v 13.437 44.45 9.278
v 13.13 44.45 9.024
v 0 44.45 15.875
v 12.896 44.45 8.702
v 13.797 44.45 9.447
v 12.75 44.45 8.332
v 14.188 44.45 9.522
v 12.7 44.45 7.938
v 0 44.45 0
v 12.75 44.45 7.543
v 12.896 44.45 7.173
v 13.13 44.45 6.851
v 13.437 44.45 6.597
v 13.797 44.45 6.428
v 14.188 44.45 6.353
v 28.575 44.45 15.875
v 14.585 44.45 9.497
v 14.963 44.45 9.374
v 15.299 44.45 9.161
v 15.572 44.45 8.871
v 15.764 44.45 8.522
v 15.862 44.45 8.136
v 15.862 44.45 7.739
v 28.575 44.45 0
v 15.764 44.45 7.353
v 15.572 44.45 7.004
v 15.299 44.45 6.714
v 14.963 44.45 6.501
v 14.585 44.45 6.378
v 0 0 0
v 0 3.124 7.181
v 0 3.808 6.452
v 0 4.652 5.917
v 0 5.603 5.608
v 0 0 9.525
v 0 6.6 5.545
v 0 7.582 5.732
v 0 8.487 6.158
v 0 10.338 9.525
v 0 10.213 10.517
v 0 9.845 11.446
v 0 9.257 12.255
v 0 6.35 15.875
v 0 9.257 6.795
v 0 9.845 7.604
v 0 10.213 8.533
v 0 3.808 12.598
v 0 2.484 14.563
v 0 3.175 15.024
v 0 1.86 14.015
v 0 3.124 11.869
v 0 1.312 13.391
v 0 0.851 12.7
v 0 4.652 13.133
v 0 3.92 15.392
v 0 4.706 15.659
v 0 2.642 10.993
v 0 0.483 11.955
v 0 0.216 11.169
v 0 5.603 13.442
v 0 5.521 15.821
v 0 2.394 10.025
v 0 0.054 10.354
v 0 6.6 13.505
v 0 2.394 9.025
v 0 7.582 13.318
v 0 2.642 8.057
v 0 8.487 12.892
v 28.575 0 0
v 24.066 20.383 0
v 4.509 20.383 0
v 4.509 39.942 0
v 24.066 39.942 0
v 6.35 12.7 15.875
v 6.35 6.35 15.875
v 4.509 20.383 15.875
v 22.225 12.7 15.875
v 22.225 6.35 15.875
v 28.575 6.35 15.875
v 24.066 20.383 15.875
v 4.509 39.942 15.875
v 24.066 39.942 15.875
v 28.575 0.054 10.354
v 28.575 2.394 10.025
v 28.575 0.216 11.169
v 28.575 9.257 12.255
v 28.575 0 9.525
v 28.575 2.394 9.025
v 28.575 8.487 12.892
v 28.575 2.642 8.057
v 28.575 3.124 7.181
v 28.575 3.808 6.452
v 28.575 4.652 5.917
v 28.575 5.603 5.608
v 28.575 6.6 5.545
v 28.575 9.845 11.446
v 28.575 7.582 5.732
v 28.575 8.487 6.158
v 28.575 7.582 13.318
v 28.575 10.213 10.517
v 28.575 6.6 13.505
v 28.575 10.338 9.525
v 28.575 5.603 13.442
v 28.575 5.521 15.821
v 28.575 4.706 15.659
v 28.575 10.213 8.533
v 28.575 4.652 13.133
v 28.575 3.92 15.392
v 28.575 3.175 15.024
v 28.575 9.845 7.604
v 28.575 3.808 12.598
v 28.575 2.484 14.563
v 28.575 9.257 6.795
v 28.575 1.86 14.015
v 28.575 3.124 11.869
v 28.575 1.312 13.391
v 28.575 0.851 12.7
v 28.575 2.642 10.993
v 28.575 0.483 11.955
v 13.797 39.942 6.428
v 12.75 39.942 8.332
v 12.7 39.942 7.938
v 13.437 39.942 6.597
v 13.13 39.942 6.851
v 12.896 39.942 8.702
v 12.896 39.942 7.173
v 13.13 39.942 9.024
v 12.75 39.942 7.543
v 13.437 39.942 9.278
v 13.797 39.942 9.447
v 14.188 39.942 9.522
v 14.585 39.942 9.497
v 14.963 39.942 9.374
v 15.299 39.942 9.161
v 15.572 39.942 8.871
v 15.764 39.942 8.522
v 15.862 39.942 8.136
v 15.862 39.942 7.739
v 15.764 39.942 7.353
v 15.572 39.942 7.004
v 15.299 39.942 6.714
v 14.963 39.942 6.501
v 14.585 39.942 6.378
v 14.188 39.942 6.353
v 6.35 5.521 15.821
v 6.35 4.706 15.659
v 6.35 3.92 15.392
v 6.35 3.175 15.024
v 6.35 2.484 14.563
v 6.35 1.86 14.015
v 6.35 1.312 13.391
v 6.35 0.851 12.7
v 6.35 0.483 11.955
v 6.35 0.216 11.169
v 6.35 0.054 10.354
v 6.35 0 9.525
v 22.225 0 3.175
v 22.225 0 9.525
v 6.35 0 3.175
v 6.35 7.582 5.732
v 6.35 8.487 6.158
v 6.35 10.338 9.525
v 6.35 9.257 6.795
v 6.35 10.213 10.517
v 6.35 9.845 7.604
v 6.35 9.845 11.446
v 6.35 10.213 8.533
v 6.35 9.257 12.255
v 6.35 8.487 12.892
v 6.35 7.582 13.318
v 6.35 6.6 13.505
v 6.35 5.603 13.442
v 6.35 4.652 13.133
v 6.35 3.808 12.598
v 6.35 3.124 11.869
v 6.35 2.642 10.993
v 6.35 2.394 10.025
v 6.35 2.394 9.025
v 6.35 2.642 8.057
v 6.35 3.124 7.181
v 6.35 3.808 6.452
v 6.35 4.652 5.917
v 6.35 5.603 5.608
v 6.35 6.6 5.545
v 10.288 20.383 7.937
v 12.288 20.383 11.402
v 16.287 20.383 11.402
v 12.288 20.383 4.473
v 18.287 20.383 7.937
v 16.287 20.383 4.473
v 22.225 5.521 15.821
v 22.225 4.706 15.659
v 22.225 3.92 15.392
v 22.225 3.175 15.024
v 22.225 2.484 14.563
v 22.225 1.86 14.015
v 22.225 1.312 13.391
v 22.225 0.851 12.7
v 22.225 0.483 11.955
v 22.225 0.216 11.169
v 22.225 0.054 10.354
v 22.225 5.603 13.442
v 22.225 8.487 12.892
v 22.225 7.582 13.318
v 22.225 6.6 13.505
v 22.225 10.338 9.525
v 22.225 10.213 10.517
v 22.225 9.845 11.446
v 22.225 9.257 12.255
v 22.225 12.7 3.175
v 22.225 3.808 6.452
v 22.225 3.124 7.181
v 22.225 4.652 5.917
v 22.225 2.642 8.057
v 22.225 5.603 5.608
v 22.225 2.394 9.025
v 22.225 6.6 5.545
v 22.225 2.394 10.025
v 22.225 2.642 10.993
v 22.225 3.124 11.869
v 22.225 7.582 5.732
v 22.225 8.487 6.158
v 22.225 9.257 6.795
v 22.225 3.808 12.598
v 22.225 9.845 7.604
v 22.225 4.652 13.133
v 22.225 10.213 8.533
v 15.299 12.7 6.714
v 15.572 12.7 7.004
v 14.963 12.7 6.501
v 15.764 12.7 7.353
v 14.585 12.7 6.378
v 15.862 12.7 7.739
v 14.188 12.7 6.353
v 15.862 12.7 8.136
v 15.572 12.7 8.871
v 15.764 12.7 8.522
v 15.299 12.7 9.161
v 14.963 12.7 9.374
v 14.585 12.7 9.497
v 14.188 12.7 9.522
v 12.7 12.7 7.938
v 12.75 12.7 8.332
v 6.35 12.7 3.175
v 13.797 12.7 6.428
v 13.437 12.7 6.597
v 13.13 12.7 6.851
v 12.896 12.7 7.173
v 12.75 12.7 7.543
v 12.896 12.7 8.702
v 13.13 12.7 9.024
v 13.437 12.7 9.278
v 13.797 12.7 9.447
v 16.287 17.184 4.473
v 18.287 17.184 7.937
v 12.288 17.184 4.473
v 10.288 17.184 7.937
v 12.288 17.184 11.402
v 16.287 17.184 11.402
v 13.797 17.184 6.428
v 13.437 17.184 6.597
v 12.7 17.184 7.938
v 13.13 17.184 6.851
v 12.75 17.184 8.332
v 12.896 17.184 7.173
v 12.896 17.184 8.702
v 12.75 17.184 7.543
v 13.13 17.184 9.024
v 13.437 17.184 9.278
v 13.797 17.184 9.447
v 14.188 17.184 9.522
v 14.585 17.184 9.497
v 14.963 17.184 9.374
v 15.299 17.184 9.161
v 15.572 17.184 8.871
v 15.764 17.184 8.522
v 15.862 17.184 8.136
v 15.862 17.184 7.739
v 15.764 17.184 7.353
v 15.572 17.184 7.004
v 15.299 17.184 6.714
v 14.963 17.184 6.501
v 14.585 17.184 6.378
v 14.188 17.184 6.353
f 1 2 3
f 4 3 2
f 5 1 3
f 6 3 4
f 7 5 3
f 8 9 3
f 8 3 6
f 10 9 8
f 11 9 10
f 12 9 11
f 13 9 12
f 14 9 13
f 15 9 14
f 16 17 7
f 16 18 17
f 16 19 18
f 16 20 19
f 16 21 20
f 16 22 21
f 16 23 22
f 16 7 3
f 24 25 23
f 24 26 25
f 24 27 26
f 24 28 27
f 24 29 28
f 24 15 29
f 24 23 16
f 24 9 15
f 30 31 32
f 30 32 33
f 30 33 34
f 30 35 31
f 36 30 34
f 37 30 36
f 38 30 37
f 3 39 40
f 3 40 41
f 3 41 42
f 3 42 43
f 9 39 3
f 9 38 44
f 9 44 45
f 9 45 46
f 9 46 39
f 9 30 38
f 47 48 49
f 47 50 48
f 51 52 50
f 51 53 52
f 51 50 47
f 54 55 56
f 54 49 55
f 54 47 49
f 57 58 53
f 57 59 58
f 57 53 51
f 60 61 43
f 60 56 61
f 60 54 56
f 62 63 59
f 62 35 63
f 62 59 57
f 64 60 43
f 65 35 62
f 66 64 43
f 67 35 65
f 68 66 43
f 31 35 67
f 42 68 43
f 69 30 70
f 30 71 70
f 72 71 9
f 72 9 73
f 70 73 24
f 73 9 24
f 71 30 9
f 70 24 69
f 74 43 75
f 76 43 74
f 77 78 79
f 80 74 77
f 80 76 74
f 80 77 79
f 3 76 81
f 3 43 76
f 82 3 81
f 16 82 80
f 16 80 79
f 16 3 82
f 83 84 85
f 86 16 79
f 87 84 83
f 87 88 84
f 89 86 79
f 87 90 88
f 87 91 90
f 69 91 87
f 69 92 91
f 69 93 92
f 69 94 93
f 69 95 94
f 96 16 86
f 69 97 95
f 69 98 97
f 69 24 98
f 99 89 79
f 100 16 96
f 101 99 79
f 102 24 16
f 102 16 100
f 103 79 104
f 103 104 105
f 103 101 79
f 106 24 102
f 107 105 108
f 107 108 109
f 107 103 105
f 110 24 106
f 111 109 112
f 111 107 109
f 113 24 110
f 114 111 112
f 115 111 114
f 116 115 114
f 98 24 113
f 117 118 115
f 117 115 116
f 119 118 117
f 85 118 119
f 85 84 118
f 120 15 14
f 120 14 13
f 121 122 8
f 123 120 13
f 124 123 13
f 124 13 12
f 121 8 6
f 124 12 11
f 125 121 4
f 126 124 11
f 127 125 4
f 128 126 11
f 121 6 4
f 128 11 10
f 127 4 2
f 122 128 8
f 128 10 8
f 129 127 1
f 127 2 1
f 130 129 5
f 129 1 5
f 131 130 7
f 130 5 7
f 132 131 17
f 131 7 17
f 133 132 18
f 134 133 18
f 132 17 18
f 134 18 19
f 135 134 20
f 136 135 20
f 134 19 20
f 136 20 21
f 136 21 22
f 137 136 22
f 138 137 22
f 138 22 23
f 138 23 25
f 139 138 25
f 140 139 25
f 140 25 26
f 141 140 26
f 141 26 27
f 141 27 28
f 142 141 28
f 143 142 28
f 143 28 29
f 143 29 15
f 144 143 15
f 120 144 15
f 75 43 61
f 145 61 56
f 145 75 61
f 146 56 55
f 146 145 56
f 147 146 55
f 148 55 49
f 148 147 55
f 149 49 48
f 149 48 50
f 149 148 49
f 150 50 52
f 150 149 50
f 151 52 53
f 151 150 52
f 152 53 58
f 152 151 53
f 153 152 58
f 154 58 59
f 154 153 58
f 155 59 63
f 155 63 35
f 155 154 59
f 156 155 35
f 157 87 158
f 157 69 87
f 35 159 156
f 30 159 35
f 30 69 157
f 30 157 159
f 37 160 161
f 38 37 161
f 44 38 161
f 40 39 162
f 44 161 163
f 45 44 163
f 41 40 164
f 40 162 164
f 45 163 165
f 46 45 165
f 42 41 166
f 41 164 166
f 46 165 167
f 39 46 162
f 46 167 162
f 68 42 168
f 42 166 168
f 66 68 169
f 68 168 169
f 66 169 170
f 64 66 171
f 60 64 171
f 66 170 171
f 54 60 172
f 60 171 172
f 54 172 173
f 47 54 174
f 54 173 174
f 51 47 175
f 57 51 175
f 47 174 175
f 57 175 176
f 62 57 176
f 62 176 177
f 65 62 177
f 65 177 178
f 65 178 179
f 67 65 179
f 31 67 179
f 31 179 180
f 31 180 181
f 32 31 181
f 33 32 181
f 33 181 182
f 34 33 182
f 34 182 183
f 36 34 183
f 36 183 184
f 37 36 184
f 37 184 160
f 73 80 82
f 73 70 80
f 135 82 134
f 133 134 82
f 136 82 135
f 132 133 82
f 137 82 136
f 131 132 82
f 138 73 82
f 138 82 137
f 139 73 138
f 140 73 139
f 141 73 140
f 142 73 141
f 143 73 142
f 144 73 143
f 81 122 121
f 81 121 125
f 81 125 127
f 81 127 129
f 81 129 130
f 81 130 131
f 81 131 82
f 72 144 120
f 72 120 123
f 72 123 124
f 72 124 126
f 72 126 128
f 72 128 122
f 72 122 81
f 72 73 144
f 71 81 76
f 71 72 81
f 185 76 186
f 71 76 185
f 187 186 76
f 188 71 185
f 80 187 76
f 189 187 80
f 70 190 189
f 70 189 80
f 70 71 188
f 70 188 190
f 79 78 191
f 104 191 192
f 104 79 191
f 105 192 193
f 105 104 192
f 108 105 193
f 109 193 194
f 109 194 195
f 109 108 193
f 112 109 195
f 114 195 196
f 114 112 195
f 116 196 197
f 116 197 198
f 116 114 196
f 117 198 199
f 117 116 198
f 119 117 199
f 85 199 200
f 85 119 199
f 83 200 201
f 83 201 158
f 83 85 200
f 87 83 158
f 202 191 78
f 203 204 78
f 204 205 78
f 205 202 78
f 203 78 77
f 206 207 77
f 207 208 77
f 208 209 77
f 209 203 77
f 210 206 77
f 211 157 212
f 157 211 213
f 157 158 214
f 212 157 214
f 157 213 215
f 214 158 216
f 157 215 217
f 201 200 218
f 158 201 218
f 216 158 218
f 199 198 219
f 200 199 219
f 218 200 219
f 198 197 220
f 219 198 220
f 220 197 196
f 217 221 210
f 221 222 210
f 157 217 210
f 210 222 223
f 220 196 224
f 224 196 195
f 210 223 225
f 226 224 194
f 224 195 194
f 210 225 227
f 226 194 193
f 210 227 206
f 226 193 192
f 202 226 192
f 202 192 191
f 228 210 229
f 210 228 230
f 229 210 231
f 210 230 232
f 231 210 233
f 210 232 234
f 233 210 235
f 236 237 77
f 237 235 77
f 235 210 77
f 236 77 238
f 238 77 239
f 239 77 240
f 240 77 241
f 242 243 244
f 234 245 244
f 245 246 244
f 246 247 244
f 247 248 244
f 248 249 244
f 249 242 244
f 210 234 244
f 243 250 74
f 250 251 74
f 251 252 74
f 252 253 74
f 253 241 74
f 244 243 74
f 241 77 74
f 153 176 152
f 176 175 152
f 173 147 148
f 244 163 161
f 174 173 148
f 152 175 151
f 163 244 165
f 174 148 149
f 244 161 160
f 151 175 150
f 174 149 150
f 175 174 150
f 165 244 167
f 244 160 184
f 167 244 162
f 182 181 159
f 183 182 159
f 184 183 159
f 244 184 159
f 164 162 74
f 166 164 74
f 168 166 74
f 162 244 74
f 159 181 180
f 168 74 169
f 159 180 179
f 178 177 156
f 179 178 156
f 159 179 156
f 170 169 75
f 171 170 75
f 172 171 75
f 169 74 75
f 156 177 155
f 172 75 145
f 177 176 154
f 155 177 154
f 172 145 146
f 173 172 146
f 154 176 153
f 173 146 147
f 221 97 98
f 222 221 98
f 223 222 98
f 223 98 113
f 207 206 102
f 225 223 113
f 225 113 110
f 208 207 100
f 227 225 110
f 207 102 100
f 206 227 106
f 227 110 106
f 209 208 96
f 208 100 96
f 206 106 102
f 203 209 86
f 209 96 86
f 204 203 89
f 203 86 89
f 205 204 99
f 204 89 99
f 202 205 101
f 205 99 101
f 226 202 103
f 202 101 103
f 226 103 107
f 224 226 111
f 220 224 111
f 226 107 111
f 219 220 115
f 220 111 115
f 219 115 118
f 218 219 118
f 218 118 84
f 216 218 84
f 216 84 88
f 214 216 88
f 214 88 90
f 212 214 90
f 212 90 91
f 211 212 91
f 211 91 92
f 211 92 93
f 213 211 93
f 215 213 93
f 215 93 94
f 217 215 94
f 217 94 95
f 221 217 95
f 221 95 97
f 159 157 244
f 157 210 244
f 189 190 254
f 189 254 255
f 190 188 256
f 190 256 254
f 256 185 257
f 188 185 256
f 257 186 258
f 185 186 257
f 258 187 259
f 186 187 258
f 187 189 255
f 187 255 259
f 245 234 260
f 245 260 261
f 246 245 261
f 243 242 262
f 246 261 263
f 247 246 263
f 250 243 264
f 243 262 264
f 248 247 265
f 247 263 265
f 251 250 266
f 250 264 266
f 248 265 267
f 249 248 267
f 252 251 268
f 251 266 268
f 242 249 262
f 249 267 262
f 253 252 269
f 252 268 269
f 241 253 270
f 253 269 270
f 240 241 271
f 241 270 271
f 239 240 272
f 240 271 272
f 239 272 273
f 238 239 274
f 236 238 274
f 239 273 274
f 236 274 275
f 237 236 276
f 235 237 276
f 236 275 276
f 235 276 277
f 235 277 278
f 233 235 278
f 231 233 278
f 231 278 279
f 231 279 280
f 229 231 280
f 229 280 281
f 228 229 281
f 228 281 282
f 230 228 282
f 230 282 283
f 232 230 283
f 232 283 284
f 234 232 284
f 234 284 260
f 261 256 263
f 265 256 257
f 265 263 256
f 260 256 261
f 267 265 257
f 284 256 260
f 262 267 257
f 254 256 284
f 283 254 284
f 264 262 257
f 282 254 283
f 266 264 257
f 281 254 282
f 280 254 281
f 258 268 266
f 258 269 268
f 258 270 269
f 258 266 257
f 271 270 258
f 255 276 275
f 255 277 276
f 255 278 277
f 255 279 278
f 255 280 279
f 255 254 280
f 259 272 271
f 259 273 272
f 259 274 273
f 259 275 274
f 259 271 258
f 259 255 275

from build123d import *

# Parameters (mm, degrees)
SKETCH_W        = 28.575
SKETCH_H        = 44.45
PAD_DEPTH       = 15.875
SKETCH002_W     = 19.558
SKETCH002_H     = 19.558
POCKET_DEPTH    = 15.876
SKETCH003_W     = 15.875
SKETCH003_H     = 12.7
POCKET001_DEPTH = 12.7
SKETCH004_R     = 3.9878
POCKET002_DEPTH = 28.576
SKETCH005_R     = 1.5875
POCKET003_DEPTH = 44.451
POCKET004_DEPTH = 3.2


with BuildPart() as part:
    # Sketch → Pad (new body)
    with BuildSketch(Plane.XY):
        with Locations((14.2875, 22.225)):
            Rectangle(SKETCH_W, SKETCH_H)
    extrude(amount=PAD_DEPTH)

    # Sketch002 → Pocket (cut, through all)
    with BuildSketch(Plane(origin=(0, 0, 0), x_dir=(1, 0, 0), z_dir=(0, 0, -1))):
        with Locations((14.2875, -30.1625)):
            Rectangle(SKETCH002_W, SKETCH002_H)
    extrude(amount=-POCKET_DEPTH, mode=Mode.SUBTRACT)

    # Sketch003 → Pocket001 (cut)
    with BuildSketch(Plane.XY.offset(15.875)):
        with Locations((14.2875, 6.35)):
            Rectangle(SKETCH003_W, SKETCH003_H)
    extrude(amount=-POCKET001_DEPTH, mode=Mode.SUBTRACT)

    # Sketch004 → Pocket002 (cut, through all)
    with BuildSketch(Plane.YZ.offset(28.575)):
        with Locations((6.35, 9.525)):
            Circle(SKETCH004_R)
        with BuildLine():
            ThreePointArc((6.35, 15.875), (1.859872, 14.015128), (0, 9.525))
            Line((0, 9.525), (0, 15.875))
            Line((0, 15.875), (6.35, 15.875))
        make_face()
    extrude(amount=-POCKET002_DEPTH, mode=Mode.SUBTRACT)

    # Sketch005 → Pocket003 (cut, through all)
    with BuildSketch(Plane(origin=(0, 44.45, 0), x_dir=(-1, 0, 0), z_dir=(0, 1, 0))):
        with Locations((-14.2875, 7.9375)):
            Circle(SKETCH005_R)
    extrude(amount=-POCKET003_DEPTH, mode=Mode.SUBTRACT)

    # Sketch006 → Pocket004 (cut)
    with BuildSketch(Plane(origin=(0, 20.3835, 0), x_dir=(-1, 0, 0), z_dir=(0, 1, 0))):
        Polygon((-16.287496, 11.401586), (-12.287504, 11.401586), (-10.287508, 7.937492), (-12.287504, 4.473397), (-16.287496, 4.473397), (-18.287492, 7.937492), align=None)
    extrude(amount=-POCKET004_DEPTH, mode=Mode.SUBTRACT)


solid = part.part
